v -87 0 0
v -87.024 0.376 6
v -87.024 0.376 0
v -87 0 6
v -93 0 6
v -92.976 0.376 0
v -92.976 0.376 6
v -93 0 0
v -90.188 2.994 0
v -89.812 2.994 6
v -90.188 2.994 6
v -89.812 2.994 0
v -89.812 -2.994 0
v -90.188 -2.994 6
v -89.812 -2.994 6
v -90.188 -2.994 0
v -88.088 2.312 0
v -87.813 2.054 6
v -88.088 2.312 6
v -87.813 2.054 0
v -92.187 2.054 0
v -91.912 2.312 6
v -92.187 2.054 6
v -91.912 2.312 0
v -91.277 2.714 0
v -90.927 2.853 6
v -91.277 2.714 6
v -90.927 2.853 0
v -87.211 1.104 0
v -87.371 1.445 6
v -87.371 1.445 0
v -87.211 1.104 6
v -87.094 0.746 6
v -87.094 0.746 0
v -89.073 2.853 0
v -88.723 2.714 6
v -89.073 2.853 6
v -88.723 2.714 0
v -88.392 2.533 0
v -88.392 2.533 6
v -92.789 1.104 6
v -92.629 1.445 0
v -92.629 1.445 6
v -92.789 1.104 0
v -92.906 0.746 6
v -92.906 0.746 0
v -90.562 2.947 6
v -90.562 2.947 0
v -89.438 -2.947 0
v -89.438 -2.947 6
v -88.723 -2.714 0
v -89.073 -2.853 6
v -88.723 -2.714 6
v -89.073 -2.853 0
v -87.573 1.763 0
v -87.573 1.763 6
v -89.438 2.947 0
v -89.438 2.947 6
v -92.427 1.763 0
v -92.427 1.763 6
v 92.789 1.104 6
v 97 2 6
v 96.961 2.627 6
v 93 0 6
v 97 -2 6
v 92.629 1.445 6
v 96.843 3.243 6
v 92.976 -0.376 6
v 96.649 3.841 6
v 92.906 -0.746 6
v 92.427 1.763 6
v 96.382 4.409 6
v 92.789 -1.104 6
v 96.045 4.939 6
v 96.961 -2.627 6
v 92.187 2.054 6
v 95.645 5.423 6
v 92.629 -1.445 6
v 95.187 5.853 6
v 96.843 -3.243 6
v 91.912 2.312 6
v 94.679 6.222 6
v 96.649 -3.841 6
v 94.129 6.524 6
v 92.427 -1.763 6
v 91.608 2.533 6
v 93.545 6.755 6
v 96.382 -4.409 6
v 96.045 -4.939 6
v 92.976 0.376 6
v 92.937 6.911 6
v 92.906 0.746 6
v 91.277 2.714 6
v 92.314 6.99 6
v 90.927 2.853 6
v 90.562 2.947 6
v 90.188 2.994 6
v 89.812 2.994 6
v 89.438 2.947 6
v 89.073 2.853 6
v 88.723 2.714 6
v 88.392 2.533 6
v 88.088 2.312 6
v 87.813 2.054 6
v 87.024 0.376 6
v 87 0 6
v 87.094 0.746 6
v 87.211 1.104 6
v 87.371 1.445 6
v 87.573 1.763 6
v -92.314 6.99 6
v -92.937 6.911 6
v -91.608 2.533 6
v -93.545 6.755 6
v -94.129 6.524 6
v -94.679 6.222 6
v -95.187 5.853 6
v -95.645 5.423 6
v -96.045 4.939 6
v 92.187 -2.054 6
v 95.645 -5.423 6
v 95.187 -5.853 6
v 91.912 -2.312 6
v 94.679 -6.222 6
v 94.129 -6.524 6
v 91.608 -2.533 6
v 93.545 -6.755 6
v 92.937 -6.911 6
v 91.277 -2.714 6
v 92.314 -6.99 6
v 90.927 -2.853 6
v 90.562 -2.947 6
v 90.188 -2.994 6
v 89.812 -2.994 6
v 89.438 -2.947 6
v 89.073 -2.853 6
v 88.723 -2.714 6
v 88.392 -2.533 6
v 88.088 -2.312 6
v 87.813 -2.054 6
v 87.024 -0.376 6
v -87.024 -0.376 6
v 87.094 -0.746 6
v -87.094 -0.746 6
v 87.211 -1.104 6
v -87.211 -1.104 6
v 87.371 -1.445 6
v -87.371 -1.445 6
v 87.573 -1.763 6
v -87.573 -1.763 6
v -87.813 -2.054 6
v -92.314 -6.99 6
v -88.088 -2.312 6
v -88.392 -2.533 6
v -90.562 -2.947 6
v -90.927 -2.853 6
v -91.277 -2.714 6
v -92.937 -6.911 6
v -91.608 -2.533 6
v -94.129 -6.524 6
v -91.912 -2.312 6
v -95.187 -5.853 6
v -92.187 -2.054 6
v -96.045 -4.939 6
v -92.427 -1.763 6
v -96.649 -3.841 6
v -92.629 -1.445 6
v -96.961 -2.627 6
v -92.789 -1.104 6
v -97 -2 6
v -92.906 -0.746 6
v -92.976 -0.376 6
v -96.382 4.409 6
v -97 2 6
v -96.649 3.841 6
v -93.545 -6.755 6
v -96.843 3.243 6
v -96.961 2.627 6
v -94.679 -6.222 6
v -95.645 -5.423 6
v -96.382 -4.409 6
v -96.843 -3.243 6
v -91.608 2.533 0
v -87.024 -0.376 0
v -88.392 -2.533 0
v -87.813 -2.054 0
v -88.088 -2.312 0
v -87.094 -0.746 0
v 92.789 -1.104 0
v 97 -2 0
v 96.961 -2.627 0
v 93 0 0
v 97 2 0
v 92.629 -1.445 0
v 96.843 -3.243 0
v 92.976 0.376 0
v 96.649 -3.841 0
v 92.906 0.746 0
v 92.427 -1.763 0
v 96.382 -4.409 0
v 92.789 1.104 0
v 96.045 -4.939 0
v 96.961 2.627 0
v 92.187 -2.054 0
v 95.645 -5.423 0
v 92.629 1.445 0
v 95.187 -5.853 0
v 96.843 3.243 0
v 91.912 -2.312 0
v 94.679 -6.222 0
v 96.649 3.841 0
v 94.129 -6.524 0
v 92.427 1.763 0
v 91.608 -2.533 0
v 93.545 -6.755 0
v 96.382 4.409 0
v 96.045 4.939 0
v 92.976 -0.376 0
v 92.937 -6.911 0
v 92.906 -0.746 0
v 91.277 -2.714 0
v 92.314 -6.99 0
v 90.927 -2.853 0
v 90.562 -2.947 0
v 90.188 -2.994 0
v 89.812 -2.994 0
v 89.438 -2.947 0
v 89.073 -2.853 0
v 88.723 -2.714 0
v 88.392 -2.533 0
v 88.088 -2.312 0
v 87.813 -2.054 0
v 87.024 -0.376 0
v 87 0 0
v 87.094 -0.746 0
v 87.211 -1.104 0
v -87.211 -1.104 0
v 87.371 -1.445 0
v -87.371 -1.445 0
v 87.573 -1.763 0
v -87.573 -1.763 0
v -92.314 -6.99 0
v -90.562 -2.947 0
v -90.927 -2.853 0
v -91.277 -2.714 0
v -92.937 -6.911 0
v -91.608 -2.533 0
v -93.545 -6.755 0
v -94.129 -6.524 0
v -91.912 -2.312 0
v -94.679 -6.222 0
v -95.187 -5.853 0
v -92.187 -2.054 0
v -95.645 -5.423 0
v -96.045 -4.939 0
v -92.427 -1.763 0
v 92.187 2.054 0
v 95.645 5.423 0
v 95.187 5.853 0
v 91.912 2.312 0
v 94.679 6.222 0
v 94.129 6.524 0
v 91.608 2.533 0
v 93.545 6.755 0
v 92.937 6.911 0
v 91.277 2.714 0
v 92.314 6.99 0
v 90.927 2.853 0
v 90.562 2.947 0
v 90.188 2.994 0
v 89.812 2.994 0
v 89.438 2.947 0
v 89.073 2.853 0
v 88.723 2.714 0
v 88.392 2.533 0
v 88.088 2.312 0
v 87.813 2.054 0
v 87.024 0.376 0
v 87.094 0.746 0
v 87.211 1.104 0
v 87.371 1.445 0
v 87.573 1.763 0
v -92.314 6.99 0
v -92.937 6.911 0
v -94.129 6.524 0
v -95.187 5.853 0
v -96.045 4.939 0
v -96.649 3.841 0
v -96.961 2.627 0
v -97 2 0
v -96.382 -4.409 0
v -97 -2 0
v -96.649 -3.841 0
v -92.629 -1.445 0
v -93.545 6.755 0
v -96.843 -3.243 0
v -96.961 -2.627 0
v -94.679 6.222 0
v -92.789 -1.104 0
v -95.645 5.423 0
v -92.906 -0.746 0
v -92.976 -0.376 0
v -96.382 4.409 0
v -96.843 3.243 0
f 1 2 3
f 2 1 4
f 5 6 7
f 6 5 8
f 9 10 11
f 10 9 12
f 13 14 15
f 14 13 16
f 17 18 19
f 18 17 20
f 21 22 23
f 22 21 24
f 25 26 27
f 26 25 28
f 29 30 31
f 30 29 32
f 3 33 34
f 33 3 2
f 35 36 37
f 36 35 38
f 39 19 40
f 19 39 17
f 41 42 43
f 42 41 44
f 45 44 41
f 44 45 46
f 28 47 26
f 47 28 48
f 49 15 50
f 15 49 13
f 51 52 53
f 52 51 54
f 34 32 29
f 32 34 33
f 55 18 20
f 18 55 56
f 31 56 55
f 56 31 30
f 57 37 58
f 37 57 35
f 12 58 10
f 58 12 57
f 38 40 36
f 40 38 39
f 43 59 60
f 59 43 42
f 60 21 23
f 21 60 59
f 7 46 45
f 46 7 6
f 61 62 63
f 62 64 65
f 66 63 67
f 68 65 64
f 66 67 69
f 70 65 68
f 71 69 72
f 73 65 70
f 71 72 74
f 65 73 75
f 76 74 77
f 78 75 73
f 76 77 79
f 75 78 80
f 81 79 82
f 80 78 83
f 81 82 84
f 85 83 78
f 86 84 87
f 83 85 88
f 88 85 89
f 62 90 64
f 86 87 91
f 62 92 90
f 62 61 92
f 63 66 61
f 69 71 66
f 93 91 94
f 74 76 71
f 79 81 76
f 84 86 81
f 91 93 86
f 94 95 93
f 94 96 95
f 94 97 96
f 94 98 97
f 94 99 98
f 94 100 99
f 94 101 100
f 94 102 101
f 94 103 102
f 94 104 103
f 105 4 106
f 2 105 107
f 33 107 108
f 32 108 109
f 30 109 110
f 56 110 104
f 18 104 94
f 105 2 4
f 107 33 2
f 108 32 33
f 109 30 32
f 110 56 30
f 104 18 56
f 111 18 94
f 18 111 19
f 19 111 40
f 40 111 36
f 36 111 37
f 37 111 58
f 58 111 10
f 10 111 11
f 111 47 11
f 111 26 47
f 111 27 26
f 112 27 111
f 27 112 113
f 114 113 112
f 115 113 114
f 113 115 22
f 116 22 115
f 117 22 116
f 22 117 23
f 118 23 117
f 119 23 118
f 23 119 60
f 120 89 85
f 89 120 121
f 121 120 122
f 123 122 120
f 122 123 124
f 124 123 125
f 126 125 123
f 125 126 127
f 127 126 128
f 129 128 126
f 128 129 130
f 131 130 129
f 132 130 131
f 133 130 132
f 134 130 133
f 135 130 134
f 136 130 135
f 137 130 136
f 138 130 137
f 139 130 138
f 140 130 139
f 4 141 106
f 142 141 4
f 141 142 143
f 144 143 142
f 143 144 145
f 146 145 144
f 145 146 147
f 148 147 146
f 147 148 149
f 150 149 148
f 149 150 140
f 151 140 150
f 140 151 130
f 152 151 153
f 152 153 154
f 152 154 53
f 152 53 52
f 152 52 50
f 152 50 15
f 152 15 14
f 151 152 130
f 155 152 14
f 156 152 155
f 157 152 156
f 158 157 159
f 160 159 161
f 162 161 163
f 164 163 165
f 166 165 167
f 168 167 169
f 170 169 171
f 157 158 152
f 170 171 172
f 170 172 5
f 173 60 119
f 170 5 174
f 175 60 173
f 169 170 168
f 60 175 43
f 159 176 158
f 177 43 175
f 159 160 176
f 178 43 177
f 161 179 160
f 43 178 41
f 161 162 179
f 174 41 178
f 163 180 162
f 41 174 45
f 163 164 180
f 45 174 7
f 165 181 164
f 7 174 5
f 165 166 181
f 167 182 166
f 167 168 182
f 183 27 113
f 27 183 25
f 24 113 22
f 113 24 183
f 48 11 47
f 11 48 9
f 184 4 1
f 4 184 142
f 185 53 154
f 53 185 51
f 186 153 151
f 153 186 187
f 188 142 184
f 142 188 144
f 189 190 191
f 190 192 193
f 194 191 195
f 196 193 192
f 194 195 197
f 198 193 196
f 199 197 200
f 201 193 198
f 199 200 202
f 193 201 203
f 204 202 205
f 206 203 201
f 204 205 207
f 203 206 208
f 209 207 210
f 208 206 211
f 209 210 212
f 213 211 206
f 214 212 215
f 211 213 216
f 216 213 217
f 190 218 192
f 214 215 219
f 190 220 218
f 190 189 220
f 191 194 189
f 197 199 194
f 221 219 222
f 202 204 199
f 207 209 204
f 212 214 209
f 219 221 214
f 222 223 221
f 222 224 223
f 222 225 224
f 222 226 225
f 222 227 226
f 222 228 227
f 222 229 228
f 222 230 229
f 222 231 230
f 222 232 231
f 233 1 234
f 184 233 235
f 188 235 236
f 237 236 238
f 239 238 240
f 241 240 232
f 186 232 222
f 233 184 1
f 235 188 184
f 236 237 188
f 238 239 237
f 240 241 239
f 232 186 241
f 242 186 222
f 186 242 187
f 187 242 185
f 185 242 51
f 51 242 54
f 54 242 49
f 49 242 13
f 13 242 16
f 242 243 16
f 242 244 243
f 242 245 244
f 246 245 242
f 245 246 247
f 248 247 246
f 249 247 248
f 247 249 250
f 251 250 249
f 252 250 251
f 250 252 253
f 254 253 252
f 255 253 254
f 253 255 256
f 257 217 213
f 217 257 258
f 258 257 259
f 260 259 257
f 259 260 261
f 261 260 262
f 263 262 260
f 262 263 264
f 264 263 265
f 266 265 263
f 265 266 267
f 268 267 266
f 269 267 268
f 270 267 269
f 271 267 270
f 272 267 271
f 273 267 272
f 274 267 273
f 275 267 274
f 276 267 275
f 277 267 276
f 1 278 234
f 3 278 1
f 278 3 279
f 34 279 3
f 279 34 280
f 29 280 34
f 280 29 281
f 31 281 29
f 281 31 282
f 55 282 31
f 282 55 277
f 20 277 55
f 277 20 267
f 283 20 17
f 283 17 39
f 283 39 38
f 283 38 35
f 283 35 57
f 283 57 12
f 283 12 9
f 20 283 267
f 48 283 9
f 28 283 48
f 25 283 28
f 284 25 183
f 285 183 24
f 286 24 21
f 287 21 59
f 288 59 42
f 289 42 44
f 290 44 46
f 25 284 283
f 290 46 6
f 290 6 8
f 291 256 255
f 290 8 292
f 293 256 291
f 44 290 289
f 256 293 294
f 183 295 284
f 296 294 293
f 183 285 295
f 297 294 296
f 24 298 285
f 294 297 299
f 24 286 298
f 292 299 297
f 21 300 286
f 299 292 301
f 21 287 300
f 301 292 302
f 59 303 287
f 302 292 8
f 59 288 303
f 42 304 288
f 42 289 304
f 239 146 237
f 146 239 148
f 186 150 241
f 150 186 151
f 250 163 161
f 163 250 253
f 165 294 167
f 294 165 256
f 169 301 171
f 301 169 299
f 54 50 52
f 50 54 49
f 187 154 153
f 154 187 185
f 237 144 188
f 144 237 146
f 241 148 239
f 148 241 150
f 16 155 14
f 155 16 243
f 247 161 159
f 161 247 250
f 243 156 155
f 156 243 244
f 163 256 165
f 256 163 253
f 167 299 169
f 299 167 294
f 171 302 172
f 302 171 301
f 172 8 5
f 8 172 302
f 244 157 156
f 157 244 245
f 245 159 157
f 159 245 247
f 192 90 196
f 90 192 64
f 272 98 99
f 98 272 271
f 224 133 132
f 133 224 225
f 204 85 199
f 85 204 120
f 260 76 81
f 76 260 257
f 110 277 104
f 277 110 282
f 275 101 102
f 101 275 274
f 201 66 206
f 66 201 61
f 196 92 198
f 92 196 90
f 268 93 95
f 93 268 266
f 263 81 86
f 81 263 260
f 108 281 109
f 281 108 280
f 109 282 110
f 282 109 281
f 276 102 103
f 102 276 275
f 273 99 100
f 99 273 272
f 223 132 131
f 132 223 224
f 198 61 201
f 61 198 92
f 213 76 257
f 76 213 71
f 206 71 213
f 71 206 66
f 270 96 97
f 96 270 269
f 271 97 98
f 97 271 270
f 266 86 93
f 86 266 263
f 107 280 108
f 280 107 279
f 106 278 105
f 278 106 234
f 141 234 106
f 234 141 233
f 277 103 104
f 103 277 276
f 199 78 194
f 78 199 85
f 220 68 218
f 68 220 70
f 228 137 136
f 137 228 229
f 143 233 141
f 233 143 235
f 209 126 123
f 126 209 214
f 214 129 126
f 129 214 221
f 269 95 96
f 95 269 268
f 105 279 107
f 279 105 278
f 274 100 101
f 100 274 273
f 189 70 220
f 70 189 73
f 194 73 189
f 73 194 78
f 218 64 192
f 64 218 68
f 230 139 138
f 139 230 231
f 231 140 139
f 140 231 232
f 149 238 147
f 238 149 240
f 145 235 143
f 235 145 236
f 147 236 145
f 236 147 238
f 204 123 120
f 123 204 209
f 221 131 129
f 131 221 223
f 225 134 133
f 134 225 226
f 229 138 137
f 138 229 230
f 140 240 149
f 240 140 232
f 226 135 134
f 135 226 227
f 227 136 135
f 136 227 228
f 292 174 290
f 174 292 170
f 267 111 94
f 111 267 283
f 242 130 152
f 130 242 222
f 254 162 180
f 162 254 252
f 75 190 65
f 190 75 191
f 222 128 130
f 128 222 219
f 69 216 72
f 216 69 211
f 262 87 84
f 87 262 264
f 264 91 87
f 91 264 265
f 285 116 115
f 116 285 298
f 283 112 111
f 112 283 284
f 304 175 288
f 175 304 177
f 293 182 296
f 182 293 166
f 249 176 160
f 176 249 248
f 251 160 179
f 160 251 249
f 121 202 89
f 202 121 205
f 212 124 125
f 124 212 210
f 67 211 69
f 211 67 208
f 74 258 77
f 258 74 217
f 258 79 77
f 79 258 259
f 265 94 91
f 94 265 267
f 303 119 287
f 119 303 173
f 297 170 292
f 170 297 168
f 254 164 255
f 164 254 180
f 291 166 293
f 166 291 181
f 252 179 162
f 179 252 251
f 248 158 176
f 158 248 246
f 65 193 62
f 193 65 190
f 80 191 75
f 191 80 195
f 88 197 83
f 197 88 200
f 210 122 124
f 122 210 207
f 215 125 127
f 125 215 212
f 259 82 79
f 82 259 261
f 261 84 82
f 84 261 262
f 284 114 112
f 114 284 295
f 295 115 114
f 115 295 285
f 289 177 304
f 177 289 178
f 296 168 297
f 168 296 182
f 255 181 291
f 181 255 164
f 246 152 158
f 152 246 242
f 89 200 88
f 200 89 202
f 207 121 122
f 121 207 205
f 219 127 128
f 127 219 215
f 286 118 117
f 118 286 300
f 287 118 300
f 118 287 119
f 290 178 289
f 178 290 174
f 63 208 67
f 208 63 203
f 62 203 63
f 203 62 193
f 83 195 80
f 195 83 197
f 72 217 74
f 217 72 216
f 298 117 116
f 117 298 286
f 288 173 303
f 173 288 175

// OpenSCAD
$fn = 50;


difference() {
	union() {
		hull() {
			translate(v = [-92.0000000000, 2.0000000000, 0]) {
				cylinder(h = 6, r = 5);
			}
			translate(v = [92.0000000000, 2.0000000000, 0]) {
				cylinder(h = 6, r = 5);
			}
			translate(v = [-92.0000000000, -2.0000000000, 0]) {
				cylinder(h = 6, r = 5);
			}
			translate(v = [92.0000000000, -2.0000000000, 0]) {
				cylinder(h = 6, r = 5);
			}
		}
	}
	union() {
		translate(v = [-90.0000000000, 0.0000000000, 0]) {
			cylinder(h = 6, r = 3.0000000000);
		}
		translate(v = [90.0000000000, 0.0000000000, 0]) {
			cylinder(h = 6, r = 3.0000000000);
		}
		translate(v = [-90.0000000000, 0.0000000000, 0]) {
			cylinder(h = 6, r = 1.5000000000);
		}
		translate(v = [90.0000000000, 0.0000000000, 0]) {
			cylinder(h = 6, r = 1.5000000000);
		}
		translate(v = [-90.0000000000, 0.0000000000, 0]) {
			cylinder(h = 6, r = 1.5000000000);
		}
		translate(v = [90.0000000000, 0.0000000000, 0]) {
			cylinder(h = 6, r = 1.5000000000);
		}
		translate(v = [-90.0000000000, 0.0000000000, 0]) {
			cylinder(h = 6, r = 1.5000000000);
		}
		translate(v = [90.0000000000, 0.0000000000, 0]) {
			cylinder(h = 6, r = 1.5000000000);
		}
	}
}
